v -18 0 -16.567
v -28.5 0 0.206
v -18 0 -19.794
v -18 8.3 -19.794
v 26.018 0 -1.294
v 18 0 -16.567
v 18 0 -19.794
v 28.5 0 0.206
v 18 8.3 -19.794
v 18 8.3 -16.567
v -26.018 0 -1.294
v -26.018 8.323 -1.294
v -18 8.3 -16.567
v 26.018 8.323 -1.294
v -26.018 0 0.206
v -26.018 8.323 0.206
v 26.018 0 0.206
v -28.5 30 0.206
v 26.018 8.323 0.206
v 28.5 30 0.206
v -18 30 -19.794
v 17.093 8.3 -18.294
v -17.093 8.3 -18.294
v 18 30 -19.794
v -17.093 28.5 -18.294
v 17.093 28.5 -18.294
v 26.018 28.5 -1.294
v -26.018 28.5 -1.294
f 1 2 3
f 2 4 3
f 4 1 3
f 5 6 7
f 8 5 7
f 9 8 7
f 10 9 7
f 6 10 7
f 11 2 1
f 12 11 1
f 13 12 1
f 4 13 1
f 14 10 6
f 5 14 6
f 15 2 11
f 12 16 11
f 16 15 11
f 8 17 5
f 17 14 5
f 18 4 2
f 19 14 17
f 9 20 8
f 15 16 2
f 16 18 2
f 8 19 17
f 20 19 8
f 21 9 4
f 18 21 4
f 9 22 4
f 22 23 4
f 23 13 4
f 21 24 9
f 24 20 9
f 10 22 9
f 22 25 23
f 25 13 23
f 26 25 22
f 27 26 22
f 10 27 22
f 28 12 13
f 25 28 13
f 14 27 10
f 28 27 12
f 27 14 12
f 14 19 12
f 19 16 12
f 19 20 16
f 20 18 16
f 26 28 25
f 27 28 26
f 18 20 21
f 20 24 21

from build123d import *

# Parameters (mm, degrees)
SALIENTE_EXTRUIR1_DEPTH = 30
VACIADO1_T              = -1.5
CROQUIS4_W              = 36
CROQUIS4_H              = 8.3
CORTAR_EXTRUIR2_DEPTH   = 10
CROQUIS5_W              = 52.0366929
CROQUIS5_H              = 8.322917461
CORTAR_EXTRUIR3_DEPTH   = 10


with BuildPart() as part:
    # Croquis1 → Saliente-Extruir1 (new body)
    with BuildSketch(Plane(origin=(0, 0, 0), x_dir=(1, 0, 0), z_dir=(0, 1, 0))):
        Polygon((-28.5, -0.205897881), (-18, 19.794102119), (18, 19.794102119), (28.5, -0.205897881), align=None)
    extrude(amount=SALIENTE_EXTRUIR1_DEPTH)

    # Vaciado1
    vaciado1_openings = [part.faces().sort_by_distance(p)[0] for p in [
        (0, 0, -9.041413947),
    ]]
    offset(amount=VACIADO1_T, openings=vaciado1_openings, kind=Kind.INTERSECTION)

    # Croquis4 → Cortar-Extruir2 (cut)
    with BuildSketch(Plane(origin=(0, 0, -19.794102119), x_dir=(-1, 0, 0), z_dir=(0, 0, -1))):
        with Locations((0, 4.15)):
            Rectangle(CROQUIS4_W, CROQUIS4_H)
    extrude(amount=-CORTAR_EXTRUIR2_DEPTH, mode=Mode.SUBTRACT)

    # Croquis5 → Cortar-Extruir3 (cut)
    with BuildSketch(Plane(origin=(0, 0, -1.294102119), x_dir=(-1, 0, 0), z_dir=(0, 0, -1))):
        with Locations((0, 4.161458731)):
            Rectangle(CROQUIS5_W, CROQUIS5_H)
    extrude(amount=-CORTAR_EXTRUIR3_DEPTH, mode=Mode.SUBTRACT)


solid = part.part
